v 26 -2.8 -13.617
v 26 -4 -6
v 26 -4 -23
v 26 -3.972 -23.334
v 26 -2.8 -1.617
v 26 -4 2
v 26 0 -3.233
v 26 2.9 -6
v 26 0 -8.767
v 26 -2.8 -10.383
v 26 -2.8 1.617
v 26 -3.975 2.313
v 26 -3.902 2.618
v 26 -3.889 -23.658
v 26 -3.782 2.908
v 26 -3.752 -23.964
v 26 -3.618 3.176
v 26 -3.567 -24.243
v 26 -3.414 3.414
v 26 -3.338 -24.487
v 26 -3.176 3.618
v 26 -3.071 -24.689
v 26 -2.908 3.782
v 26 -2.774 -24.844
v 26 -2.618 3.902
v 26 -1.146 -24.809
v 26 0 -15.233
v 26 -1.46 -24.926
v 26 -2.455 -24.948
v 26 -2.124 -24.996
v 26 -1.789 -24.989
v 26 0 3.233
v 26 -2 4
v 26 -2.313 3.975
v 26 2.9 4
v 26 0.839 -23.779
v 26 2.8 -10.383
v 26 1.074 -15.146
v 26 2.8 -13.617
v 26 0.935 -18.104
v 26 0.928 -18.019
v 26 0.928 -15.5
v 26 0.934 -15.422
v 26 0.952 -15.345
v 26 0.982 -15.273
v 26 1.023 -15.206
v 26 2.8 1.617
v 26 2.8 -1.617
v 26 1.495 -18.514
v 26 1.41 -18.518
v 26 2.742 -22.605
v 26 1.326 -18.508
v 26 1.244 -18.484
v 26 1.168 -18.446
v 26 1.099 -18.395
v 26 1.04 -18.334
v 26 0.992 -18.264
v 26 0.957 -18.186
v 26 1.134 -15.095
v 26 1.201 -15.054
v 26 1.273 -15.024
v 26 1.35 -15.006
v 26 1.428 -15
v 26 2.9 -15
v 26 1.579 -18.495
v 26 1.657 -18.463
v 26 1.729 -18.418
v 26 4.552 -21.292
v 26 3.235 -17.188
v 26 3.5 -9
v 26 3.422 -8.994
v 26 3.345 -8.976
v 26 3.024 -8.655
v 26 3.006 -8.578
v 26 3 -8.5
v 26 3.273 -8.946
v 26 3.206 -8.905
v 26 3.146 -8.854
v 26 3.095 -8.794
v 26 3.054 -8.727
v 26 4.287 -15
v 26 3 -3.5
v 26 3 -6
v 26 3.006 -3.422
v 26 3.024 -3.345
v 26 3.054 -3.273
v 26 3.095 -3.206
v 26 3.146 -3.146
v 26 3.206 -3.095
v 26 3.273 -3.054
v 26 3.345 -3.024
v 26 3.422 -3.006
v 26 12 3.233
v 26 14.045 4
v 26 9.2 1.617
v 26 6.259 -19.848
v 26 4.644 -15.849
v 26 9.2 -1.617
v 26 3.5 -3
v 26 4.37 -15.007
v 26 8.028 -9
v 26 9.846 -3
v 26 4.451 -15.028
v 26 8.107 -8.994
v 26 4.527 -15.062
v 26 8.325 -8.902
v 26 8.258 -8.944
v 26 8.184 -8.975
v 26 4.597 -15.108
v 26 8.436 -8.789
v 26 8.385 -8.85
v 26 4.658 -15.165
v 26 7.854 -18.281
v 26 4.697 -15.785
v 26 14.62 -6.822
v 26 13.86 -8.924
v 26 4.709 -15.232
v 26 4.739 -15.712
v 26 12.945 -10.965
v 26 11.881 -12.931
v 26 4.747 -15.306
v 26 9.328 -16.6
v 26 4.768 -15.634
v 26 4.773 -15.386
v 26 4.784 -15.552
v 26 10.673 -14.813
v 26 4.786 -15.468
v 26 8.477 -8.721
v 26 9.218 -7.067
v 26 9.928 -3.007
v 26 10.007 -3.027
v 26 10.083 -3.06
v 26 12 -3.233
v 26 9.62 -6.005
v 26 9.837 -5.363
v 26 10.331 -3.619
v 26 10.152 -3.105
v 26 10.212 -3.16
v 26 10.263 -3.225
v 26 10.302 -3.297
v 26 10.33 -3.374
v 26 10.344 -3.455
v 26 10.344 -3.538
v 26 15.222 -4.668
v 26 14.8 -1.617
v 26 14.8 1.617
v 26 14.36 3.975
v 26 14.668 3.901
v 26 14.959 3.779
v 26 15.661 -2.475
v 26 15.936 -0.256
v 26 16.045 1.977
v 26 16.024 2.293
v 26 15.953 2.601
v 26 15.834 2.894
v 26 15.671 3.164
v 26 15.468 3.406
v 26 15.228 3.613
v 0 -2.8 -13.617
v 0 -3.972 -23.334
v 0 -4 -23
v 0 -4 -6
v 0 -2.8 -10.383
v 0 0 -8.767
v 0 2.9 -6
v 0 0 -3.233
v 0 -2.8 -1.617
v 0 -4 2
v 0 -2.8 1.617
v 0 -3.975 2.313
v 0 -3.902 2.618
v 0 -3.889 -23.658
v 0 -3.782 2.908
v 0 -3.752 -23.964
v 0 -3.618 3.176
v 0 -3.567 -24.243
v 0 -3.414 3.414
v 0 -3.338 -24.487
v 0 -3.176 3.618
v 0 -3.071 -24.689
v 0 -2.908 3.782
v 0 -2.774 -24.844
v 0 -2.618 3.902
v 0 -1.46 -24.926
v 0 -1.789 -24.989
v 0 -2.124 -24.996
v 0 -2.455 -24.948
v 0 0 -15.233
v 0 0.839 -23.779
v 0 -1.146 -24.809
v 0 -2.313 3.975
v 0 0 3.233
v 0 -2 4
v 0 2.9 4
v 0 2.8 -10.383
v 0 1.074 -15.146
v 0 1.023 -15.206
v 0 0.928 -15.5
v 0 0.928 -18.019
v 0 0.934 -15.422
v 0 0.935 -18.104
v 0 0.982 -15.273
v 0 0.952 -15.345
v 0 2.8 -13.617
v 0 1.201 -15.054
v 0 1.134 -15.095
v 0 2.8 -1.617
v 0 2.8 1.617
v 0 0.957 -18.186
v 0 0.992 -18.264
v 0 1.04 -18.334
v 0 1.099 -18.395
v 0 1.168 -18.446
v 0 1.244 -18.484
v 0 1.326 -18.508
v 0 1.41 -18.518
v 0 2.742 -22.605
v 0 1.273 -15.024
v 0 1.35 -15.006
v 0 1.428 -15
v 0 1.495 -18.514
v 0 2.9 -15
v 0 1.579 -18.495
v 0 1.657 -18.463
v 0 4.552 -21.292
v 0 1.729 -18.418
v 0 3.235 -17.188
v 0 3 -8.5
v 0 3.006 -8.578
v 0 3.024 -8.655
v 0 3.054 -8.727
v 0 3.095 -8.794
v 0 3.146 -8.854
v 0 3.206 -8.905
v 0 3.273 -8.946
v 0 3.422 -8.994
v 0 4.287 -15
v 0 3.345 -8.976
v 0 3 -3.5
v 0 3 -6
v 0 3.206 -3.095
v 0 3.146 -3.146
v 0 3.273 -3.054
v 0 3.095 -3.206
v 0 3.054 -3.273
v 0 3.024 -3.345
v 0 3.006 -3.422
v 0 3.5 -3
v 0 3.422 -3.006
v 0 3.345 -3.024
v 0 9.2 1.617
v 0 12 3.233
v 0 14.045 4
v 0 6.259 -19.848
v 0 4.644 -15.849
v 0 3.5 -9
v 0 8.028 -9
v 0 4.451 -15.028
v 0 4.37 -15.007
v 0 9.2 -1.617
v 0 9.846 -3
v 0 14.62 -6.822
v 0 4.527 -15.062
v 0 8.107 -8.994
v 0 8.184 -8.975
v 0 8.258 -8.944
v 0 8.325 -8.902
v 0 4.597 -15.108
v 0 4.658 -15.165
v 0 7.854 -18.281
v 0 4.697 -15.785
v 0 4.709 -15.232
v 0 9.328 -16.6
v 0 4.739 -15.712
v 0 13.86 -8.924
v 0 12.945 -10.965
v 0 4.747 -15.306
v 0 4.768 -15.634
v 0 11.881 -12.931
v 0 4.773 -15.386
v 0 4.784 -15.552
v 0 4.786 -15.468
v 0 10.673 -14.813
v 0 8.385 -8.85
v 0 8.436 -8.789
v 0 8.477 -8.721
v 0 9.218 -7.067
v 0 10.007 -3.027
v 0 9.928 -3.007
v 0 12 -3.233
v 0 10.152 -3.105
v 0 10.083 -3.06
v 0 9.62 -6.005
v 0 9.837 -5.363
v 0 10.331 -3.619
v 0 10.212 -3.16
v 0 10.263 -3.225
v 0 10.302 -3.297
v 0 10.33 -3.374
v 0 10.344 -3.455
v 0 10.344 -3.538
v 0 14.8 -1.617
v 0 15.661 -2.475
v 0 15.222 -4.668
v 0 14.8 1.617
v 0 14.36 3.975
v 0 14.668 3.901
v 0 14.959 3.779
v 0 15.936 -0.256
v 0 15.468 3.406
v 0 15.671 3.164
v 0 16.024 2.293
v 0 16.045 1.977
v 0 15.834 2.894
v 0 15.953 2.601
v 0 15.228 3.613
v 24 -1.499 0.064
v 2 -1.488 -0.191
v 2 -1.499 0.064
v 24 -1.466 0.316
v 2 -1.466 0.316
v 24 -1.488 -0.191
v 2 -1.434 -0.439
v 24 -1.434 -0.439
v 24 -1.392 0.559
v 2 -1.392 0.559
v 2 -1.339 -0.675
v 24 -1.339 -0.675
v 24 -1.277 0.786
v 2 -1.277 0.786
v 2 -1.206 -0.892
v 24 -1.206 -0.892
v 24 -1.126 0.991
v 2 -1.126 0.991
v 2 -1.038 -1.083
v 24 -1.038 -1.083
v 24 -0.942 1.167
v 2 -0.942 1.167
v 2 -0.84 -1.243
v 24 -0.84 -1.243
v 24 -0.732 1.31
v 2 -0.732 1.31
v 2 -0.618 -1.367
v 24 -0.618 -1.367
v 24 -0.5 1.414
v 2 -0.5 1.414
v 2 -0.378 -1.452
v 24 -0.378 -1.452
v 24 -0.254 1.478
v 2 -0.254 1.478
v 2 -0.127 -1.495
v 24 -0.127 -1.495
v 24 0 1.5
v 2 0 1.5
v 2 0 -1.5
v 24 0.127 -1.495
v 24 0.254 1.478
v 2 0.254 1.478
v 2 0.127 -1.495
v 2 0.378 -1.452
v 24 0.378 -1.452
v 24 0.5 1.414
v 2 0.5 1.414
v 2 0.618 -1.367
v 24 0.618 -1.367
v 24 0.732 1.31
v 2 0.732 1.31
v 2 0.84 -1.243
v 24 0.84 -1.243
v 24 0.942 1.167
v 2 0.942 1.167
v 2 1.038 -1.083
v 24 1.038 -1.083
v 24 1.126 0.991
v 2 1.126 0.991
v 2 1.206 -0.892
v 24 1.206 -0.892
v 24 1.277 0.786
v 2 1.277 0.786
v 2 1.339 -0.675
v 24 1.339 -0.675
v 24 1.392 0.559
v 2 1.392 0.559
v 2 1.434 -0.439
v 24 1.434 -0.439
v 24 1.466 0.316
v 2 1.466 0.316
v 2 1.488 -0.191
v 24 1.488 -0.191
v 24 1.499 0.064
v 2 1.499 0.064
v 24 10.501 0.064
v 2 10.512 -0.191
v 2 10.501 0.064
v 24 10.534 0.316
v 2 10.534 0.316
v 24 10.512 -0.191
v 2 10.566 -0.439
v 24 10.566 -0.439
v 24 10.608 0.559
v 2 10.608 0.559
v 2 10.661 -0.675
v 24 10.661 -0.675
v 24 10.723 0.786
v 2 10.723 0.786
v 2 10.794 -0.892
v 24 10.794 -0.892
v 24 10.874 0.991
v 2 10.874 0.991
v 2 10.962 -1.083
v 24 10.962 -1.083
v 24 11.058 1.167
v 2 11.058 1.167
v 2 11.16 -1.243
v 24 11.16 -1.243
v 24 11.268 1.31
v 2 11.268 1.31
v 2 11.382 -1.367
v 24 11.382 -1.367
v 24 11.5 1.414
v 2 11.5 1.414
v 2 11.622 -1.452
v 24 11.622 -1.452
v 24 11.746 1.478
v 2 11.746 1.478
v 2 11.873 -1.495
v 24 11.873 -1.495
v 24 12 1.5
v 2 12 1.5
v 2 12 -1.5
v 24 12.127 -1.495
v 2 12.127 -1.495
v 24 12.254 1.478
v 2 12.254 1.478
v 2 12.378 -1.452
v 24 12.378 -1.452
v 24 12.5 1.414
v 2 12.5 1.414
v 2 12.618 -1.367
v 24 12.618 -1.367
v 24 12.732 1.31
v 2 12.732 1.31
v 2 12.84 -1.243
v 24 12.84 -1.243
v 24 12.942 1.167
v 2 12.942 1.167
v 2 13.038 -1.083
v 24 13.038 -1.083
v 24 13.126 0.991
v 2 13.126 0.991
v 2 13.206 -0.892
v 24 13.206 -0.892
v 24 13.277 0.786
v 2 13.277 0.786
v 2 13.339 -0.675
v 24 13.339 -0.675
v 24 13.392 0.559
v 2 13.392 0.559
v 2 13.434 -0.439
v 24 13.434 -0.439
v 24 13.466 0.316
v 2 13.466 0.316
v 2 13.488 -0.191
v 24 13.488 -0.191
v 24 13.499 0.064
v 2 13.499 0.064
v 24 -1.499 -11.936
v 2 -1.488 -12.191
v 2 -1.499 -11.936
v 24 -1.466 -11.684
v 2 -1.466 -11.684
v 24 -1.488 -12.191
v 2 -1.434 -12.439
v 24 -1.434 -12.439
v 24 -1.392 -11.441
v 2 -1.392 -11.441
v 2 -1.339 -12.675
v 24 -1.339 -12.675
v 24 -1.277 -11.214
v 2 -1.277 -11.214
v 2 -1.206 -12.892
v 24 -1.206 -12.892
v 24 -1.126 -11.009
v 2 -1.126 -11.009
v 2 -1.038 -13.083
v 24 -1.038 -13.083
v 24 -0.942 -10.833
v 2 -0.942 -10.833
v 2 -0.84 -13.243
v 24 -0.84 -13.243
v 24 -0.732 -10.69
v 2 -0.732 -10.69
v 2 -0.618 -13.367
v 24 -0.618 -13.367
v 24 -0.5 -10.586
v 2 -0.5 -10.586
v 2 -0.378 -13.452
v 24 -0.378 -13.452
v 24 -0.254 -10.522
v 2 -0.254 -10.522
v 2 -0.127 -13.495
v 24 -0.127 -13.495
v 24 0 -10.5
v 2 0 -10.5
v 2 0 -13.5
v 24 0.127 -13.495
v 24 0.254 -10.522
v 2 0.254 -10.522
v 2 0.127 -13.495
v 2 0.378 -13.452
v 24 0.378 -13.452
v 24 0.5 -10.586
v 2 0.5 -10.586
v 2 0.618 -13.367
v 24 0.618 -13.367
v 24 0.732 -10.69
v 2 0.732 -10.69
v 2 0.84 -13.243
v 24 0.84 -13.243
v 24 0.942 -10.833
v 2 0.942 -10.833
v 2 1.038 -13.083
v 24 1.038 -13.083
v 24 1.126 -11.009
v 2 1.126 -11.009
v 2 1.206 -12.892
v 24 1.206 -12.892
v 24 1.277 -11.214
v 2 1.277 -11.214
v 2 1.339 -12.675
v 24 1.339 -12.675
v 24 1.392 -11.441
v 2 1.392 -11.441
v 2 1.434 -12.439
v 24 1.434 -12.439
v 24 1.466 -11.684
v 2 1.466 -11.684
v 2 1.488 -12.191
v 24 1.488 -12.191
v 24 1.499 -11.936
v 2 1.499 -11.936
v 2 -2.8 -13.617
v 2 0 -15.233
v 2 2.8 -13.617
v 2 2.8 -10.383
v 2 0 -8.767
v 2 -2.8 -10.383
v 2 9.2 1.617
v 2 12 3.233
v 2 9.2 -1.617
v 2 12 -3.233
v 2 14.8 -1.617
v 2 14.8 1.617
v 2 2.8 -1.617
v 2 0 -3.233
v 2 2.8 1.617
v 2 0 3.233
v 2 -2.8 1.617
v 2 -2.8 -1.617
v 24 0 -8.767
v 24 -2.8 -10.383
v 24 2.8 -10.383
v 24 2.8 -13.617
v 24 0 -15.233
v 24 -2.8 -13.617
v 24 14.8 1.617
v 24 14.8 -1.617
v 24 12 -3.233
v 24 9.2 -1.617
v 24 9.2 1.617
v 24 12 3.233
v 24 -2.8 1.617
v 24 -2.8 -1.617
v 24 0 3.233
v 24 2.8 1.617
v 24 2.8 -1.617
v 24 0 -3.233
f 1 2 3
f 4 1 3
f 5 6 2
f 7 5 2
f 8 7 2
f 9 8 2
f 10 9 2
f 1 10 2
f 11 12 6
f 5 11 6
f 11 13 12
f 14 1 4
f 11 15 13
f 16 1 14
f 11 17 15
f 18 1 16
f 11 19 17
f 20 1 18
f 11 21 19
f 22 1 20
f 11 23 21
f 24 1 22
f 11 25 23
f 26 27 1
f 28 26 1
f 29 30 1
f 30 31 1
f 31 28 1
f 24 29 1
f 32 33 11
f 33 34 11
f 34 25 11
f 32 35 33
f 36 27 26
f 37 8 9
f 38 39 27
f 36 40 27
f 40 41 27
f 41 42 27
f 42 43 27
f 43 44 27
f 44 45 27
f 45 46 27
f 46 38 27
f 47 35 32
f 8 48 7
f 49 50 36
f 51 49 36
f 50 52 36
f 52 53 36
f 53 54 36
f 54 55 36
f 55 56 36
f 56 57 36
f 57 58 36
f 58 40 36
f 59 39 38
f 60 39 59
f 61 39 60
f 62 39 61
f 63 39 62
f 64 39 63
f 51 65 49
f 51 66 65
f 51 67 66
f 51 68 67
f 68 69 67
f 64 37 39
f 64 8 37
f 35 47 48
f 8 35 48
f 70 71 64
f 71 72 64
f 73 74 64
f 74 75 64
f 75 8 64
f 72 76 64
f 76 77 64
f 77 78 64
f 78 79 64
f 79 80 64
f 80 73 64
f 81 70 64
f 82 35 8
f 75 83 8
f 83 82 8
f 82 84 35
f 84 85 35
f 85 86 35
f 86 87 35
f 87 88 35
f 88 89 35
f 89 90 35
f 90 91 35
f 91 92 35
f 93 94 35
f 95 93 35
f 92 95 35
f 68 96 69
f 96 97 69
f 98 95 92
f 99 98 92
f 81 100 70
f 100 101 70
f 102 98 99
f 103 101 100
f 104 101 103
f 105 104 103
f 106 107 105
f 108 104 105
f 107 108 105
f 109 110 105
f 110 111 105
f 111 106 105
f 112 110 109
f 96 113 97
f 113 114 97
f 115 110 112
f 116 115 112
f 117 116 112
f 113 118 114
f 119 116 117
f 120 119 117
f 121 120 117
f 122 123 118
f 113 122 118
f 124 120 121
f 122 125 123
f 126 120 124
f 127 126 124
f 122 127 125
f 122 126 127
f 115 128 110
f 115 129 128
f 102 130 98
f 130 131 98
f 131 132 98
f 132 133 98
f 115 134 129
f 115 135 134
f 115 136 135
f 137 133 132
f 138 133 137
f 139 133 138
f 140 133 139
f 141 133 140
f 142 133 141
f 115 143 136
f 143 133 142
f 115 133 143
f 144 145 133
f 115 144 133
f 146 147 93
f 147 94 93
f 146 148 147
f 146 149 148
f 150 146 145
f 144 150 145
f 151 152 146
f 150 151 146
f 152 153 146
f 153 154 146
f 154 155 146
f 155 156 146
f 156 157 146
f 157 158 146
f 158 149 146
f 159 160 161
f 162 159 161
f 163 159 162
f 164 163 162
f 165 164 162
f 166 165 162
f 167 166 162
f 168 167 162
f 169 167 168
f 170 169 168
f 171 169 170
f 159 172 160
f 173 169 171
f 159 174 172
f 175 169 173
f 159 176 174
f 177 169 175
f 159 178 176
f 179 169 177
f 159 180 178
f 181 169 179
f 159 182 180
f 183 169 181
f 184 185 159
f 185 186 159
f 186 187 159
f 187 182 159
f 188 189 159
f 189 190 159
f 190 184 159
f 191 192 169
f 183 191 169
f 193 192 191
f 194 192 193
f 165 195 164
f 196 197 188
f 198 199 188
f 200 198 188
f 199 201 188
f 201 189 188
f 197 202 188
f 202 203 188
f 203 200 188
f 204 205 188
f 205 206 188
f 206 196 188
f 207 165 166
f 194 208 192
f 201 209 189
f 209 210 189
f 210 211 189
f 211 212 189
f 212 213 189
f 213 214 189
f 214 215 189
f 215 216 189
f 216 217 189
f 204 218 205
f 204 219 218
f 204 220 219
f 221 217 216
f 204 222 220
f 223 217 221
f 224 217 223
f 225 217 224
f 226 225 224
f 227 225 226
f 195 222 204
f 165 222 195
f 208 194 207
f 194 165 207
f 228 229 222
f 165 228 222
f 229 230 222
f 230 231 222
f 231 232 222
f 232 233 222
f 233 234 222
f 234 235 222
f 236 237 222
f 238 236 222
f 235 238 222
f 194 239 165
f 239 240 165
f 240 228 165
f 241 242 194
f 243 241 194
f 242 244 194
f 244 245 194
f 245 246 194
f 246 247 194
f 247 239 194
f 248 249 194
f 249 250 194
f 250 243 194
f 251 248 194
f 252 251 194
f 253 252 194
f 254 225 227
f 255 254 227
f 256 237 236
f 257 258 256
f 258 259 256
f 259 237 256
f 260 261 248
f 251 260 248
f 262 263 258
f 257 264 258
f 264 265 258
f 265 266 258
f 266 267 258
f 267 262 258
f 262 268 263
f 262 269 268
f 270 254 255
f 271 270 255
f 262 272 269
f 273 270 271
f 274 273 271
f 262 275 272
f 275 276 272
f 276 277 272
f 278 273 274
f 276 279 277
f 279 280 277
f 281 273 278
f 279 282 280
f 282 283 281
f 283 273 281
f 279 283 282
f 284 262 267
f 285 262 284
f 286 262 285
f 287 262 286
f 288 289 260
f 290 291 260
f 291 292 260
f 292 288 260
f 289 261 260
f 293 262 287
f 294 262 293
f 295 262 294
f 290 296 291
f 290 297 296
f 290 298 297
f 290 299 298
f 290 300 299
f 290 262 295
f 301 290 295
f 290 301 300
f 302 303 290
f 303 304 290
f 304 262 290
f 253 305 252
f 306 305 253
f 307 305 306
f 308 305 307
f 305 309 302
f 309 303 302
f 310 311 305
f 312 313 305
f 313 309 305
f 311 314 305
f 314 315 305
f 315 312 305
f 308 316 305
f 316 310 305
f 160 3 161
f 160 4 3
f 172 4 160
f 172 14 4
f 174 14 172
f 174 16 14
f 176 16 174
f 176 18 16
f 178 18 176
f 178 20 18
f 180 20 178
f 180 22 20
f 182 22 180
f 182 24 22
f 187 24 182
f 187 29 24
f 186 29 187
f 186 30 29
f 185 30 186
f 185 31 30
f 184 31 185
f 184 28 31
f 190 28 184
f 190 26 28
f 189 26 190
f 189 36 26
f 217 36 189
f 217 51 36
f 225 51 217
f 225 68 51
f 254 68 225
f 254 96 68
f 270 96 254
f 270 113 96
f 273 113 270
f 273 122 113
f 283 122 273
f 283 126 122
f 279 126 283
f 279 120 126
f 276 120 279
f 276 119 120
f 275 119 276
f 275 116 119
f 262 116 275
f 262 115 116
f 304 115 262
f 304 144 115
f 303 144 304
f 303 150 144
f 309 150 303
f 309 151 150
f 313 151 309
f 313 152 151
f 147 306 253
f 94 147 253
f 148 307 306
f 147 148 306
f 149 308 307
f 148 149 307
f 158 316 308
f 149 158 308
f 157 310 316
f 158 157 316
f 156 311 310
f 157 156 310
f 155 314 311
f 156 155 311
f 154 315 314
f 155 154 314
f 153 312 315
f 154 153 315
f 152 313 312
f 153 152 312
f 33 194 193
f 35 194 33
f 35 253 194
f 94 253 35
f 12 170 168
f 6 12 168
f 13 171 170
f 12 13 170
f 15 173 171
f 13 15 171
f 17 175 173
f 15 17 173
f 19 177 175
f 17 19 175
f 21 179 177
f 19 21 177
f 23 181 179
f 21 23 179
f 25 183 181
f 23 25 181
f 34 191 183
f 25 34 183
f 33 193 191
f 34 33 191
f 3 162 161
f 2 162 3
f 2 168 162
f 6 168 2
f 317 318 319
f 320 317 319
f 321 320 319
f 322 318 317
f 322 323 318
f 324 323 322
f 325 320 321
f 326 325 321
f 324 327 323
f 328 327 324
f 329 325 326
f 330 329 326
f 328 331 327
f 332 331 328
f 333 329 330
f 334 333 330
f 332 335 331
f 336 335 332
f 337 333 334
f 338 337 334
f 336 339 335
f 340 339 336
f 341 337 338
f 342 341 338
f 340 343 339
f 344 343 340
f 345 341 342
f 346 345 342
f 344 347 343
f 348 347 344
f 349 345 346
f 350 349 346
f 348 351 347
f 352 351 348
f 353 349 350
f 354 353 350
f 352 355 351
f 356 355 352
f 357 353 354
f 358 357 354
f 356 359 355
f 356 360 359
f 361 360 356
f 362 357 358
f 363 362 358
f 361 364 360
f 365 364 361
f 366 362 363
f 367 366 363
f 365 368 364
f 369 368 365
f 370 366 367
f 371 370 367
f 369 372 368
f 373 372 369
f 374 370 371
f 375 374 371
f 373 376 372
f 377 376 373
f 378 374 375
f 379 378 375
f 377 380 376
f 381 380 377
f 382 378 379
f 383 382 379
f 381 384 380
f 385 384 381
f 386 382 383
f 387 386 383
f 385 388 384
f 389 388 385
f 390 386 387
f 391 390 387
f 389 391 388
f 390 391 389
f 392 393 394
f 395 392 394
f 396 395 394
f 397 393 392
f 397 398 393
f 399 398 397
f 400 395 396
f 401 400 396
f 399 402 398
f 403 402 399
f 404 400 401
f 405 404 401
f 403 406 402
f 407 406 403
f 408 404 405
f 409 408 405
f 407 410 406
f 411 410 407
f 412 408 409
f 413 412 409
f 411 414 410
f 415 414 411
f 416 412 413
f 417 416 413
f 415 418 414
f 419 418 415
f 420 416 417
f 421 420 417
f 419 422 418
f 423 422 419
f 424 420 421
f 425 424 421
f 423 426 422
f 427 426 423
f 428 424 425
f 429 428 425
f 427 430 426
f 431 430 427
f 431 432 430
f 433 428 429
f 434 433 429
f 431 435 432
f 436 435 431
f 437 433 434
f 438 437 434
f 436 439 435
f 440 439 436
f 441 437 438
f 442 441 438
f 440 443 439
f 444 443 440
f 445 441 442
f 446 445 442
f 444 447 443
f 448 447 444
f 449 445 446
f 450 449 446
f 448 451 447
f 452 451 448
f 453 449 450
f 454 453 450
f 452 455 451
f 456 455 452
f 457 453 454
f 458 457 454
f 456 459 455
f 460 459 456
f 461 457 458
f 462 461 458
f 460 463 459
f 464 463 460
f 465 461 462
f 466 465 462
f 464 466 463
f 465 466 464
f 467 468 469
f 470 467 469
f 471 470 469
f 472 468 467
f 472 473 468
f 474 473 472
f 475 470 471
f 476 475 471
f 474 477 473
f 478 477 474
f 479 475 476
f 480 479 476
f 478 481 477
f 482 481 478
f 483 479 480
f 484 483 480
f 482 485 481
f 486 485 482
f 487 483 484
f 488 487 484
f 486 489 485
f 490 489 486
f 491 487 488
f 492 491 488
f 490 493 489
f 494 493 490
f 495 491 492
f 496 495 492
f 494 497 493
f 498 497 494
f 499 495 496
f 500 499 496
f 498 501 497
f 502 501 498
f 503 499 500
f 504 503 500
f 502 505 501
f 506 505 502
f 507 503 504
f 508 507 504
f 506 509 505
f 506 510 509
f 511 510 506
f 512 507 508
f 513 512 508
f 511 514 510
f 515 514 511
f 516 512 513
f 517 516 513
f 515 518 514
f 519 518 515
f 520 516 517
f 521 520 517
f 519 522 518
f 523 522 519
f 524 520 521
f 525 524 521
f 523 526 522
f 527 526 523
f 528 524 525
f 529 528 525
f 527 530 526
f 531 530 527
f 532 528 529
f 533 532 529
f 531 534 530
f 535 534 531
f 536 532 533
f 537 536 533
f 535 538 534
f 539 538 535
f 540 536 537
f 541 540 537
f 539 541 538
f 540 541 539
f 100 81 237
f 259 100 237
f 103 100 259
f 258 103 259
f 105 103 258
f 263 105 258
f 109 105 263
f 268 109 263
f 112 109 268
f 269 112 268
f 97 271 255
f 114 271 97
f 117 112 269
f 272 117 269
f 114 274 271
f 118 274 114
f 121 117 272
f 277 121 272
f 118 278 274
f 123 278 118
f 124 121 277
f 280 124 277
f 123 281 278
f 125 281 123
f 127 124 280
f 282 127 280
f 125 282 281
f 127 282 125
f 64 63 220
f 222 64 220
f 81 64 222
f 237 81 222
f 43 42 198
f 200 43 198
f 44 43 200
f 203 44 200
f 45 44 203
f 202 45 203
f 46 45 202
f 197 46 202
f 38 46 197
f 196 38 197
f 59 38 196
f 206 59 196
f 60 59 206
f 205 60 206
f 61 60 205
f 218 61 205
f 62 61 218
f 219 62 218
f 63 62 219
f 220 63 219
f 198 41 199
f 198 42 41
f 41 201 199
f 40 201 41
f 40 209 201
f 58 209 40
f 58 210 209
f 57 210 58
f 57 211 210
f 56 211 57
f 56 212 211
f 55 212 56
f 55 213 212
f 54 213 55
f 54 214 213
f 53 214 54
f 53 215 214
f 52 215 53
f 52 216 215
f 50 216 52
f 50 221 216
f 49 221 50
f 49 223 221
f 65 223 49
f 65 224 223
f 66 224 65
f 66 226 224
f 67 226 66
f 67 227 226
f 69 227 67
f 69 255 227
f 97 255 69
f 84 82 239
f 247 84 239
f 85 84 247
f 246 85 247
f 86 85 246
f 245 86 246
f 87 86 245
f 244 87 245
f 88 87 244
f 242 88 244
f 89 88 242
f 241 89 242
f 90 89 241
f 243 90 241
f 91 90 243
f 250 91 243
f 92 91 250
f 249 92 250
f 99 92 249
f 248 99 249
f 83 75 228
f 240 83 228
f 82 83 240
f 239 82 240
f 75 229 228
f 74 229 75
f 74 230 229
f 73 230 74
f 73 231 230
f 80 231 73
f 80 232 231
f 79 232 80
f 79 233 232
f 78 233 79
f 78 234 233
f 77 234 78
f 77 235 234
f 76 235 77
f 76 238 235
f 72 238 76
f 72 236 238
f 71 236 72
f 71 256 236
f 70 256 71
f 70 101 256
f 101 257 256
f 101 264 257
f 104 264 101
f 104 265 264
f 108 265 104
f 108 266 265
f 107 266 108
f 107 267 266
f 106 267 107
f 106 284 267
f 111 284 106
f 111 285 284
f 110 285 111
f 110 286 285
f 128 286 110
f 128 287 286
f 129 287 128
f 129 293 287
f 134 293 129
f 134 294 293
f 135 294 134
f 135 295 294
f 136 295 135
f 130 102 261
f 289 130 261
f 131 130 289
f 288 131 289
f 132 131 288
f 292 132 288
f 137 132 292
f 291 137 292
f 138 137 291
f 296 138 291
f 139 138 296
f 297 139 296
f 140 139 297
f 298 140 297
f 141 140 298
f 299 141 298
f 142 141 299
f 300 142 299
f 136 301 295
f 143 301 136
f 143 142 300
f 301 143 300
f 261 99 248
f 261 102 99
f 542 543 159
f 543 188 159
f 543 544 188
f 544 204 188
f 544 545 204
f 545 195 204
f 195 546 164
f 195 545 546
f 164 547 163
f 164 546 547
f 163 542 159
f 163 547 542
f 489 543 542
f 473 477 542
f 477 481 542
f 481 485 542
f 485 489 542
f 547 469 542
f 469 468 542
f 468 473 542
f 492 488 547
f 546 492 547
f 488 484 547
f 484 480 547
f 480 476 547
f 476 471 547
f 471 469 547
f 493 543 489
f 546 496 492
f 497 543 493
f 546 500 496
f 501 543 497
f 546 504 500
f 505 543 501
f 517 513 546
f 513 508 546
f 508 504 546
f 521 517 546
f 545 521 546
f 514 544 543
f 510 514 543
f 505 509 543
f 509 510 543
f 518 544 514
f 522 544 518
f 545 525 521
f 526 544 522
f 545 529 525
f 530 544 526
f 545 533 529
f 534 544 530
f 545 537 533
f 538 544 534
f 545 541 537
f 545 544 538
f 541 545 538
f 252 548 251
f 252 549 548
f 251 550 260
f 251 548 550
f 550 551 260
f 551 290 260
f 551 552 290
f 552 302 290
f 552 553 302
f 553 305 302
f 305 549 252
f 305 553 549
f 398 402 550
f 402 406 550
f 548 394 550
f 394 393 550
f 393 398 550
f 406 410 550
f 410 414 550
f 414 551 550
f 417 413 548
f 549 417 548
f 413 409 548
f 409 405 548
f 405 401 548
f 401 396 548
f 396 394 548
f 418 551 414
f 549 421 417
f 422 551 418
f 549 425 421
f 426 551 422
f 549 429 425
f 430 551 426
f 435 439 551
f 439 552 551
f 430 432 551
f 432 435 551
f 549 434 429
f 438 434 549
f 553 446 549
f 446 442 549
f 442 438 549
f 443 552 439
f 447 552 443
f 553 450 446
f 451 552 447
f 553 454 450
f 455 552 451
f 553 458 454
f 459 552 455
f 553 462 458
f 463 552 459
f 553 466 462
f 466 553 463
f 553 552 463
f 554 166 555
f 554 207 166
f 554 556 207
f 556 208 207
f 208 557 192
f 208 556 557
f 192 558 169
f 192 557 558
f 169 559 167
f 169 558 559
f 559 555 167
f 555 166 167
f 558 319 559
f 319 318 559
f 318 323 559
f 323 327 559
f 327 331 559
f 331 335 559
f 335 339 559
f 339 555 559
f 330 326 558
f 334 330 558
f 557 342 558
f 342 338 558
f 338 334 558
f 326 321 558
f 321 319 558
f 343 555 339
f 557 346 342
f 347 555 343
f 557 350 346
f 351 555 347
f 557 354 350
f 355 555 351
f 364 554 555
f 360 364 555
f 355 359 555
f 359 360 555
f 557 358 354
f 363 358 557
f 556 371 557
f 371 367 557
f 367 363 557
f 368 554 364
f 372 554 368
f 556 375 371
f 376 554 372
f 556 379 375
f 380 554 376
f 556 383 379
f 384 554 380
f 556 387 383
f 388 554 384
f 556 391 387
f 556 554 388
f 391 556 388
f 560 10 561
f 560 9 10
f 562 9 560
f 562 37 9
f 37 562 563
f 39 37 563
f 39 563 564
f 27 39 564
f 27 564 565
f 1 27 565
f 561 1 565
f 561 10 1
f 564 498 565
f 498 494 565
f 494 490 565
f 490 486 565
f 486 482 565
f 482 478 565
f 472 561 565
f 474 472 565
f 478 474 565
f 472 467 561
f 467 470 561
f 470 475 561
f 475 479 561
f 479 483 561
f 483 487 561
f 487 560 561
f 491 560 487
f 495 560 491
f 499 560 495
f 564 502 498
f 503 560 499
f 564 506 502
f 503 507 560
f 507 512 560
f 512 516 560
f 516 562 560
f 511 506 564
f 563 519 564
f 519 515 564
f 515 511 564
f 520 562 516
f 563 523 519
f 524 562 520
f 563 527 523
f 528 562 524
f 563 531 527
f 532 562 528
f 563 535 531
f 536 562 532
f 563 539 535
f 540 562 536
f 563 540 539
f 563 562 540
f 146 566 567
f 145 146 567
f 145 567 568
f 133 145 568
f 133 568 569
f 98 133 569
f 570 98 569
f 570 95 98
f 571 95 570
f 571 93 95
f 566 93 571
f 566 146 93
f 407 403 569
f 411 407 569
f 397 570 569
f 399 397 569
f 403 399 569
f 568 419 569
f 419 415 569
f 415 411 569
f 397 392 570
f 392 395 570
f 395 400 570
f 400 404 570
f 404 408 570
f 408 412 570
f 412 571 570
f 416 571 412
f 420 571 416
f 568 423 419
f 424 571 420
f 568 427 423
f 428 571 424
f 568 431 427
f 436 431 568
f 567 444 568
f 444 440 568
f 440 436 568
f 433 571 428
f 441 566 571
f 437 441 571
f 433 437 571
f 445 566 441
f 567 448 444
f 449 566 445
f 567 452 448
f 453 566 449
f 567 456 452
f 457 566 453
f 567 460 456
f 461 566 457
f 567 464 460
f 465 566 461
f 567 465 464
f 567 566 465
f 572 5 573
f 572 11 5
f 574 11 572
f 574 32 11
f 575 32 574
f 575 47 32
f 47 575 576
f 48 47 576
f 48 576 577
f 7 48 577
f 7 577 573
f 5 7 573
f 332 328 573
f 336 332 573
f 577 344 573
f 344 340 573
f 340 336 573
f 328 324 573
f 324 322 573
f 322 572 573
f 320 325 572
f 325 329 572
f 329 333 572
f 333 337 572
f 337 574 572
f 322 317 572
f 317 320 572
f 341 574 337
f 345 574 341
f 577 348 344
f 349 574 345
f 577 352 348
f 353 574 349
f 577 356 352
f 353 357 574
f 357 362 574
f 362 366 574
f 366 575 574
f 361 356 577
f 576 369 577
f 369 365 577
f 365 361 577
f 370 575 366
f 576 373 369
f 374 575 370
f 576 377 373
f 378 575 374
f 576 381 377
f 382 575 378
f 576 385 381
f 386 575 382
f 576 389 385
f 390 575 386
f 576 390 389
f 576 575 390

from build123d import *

# Parameters (mm, degrees)
SKETCH1_R           = 1.5
BOSS_EXTRUDE1_DEPTH = 26
CUT_EXTRUDE1_DEPTH  = 2
CUT_EXTRUDE2_START  = 26
CUT_EXTRUDE2_DEPTH  = 2


with BuildPart() as part:
    # Sketch1 → Boss-Extrude1 (new body)
    with BuildSketch(Plane(origin=(0, 0, 0), x_dir=(0, 0, -1), z_dir=(1, 0, 0))):
        with BuildLine():
            Line((-4, 14.045215535), (-4, -2))
            ThreePointArc((-4, -2), (-3.414213562, -3.414213562), (-2, -4))
            Line((-2, -4), (23, -4))
            ThreePointArc((23, -4), (24.68931411, -3.070615635), (24.808606098, -1.146217837))
            ThreePointArc((24.808606098, -1.146217837), (13.883506503, 11.294438637), (-1.977108188, 16.045084522))
            ThreePointArc((-1.977108188, 16.045084522), (-3.406096792, 15.467499547), (-4, 14.045215535))
        make_face()
        Circle(SKETCH1_R, mode=Mode.SUBTRACT)
        with Locations((0, 12)):
            Circle(SKETCH1_R, mode=Mode.SUBTRACT)
        with Locations((12, 0)):
            Circle(SKETCH1_R, mode=Mode.SUBTRACT)
        with BuildLine():
            Line((3, 9.845620053), (3, 3.5))
            ThreePointArc((3, 3.5), (3.146446609, 3.146446609), (3.5, 3))
            Line((3.5, 3), (8.5, 3))
            ThreePointArc((8.5, 3), (8.853553391, 3.146446609), (9, 3.5))
            Line((9, 3.5), (9, 8.028111937))
            ThreePointArc((9, 8.028111937), (8.92450743, 8.292296422), (8.720826232, 8.476705043))
            ThreePointArc((8.720826232, 8.476705043), (6.220295037, 9.542901904), (3.618785416, 10.331305162))
            ThreePointArc((3.618785416, 10.331305162), (3.191287114, 10.238934627), (3, 9.845620053))
        make_face(mode=Mode.SUBTRACT)
        with BuildLine():
            Line((15, 4.286575508), (15, 1.427805862))
            ThreePointArc((15, 1.427805862), (15.146446609, 1.074252472), (15.5, 0.927805862))
            Line((15.5, 0.927805862), (18.01869702, 0.927805862))
            ThreePointArc((18.01869702, 0.927805862), (18.466352985, 1.205086001), (18.417504517, 1.729389316))
            ThreePointArc((18.417504517, 1.729389316), (17.187978253, 3.234831626), (15.849421282, 4.644213269))
            ThreePointArc((15.849421282, 4.644213269), (15.305977631, 4.747395777), (15, 4.286575508))
        make_face(mode=Mode.SUBTRACT)
    extrude(amount=BOSS_EXTRUDE1_DEPTH)

    # Sketch2 → Cut-Extrude1 (cut)
    with BuildSketch(Plane(origin=(0, 0, 0), x_dir=(0, 0, -1), z_dir=(1, 0, 0))):
        Polygon((-1.616580754, 9.2), (1.616580754, 9.2), (3.233161507, 12), (1.616580754, 14.8), (-1.616580754, 14.8), (-3.233161507, 12), align=None)
        Polygon((1.616580754, 2.8), (-1.616580754, 2.8), (-3.233161507, 0), (-1.616580754, -2.8), (1.616580754, -2.8), (3.233161507, 0), align=None)
        Polygon((15.233161507, 0), (13.616580754, 2.8), (10.383419246, 2.8), (8.766838493, 0), (10.383419246, -2.8), (13.616580754, -2.8), align=None)
    extrude(amount=CUT_EXTRUDE1_DEPTH, mode=Mode.SUBTRACT)

    # Sketch2<3> → Cut-Extrude2 (cut)
    with BuildSketch(Plane(origin=(0, 0, 0), x_dir=(0, 0, -1), z_dir=(1, 0, 0)).offset(CUT_EXTRUDE2_START)):
        Polygon((-1.616580754, 9.2), (1.616580754, 9.2), (3.233161507, 12), (1.616580754, 14.8), (-1.616580754, 14.8), (-3.233161507, 12), align=None)
        Polygon((1.616580754, 2.8), (-1.616580754, 2.8), (-3.233161507, 0), (-1.616580754, -2.8), (1.616580754, -2.8), (3.233161507, 0), align=None)
        Polygon((15.233161507, 0), (13.616580754, 2.8), (10.383419246, 2.8), (8.766838493, 0), (10.383419246, -2.8), (13.616580754, -2.8), align=None)
    extrude(amount=-CUT_EXTRUDE2_DEPTH, mode=Mode.SUBTRACT)


solid = part.part
